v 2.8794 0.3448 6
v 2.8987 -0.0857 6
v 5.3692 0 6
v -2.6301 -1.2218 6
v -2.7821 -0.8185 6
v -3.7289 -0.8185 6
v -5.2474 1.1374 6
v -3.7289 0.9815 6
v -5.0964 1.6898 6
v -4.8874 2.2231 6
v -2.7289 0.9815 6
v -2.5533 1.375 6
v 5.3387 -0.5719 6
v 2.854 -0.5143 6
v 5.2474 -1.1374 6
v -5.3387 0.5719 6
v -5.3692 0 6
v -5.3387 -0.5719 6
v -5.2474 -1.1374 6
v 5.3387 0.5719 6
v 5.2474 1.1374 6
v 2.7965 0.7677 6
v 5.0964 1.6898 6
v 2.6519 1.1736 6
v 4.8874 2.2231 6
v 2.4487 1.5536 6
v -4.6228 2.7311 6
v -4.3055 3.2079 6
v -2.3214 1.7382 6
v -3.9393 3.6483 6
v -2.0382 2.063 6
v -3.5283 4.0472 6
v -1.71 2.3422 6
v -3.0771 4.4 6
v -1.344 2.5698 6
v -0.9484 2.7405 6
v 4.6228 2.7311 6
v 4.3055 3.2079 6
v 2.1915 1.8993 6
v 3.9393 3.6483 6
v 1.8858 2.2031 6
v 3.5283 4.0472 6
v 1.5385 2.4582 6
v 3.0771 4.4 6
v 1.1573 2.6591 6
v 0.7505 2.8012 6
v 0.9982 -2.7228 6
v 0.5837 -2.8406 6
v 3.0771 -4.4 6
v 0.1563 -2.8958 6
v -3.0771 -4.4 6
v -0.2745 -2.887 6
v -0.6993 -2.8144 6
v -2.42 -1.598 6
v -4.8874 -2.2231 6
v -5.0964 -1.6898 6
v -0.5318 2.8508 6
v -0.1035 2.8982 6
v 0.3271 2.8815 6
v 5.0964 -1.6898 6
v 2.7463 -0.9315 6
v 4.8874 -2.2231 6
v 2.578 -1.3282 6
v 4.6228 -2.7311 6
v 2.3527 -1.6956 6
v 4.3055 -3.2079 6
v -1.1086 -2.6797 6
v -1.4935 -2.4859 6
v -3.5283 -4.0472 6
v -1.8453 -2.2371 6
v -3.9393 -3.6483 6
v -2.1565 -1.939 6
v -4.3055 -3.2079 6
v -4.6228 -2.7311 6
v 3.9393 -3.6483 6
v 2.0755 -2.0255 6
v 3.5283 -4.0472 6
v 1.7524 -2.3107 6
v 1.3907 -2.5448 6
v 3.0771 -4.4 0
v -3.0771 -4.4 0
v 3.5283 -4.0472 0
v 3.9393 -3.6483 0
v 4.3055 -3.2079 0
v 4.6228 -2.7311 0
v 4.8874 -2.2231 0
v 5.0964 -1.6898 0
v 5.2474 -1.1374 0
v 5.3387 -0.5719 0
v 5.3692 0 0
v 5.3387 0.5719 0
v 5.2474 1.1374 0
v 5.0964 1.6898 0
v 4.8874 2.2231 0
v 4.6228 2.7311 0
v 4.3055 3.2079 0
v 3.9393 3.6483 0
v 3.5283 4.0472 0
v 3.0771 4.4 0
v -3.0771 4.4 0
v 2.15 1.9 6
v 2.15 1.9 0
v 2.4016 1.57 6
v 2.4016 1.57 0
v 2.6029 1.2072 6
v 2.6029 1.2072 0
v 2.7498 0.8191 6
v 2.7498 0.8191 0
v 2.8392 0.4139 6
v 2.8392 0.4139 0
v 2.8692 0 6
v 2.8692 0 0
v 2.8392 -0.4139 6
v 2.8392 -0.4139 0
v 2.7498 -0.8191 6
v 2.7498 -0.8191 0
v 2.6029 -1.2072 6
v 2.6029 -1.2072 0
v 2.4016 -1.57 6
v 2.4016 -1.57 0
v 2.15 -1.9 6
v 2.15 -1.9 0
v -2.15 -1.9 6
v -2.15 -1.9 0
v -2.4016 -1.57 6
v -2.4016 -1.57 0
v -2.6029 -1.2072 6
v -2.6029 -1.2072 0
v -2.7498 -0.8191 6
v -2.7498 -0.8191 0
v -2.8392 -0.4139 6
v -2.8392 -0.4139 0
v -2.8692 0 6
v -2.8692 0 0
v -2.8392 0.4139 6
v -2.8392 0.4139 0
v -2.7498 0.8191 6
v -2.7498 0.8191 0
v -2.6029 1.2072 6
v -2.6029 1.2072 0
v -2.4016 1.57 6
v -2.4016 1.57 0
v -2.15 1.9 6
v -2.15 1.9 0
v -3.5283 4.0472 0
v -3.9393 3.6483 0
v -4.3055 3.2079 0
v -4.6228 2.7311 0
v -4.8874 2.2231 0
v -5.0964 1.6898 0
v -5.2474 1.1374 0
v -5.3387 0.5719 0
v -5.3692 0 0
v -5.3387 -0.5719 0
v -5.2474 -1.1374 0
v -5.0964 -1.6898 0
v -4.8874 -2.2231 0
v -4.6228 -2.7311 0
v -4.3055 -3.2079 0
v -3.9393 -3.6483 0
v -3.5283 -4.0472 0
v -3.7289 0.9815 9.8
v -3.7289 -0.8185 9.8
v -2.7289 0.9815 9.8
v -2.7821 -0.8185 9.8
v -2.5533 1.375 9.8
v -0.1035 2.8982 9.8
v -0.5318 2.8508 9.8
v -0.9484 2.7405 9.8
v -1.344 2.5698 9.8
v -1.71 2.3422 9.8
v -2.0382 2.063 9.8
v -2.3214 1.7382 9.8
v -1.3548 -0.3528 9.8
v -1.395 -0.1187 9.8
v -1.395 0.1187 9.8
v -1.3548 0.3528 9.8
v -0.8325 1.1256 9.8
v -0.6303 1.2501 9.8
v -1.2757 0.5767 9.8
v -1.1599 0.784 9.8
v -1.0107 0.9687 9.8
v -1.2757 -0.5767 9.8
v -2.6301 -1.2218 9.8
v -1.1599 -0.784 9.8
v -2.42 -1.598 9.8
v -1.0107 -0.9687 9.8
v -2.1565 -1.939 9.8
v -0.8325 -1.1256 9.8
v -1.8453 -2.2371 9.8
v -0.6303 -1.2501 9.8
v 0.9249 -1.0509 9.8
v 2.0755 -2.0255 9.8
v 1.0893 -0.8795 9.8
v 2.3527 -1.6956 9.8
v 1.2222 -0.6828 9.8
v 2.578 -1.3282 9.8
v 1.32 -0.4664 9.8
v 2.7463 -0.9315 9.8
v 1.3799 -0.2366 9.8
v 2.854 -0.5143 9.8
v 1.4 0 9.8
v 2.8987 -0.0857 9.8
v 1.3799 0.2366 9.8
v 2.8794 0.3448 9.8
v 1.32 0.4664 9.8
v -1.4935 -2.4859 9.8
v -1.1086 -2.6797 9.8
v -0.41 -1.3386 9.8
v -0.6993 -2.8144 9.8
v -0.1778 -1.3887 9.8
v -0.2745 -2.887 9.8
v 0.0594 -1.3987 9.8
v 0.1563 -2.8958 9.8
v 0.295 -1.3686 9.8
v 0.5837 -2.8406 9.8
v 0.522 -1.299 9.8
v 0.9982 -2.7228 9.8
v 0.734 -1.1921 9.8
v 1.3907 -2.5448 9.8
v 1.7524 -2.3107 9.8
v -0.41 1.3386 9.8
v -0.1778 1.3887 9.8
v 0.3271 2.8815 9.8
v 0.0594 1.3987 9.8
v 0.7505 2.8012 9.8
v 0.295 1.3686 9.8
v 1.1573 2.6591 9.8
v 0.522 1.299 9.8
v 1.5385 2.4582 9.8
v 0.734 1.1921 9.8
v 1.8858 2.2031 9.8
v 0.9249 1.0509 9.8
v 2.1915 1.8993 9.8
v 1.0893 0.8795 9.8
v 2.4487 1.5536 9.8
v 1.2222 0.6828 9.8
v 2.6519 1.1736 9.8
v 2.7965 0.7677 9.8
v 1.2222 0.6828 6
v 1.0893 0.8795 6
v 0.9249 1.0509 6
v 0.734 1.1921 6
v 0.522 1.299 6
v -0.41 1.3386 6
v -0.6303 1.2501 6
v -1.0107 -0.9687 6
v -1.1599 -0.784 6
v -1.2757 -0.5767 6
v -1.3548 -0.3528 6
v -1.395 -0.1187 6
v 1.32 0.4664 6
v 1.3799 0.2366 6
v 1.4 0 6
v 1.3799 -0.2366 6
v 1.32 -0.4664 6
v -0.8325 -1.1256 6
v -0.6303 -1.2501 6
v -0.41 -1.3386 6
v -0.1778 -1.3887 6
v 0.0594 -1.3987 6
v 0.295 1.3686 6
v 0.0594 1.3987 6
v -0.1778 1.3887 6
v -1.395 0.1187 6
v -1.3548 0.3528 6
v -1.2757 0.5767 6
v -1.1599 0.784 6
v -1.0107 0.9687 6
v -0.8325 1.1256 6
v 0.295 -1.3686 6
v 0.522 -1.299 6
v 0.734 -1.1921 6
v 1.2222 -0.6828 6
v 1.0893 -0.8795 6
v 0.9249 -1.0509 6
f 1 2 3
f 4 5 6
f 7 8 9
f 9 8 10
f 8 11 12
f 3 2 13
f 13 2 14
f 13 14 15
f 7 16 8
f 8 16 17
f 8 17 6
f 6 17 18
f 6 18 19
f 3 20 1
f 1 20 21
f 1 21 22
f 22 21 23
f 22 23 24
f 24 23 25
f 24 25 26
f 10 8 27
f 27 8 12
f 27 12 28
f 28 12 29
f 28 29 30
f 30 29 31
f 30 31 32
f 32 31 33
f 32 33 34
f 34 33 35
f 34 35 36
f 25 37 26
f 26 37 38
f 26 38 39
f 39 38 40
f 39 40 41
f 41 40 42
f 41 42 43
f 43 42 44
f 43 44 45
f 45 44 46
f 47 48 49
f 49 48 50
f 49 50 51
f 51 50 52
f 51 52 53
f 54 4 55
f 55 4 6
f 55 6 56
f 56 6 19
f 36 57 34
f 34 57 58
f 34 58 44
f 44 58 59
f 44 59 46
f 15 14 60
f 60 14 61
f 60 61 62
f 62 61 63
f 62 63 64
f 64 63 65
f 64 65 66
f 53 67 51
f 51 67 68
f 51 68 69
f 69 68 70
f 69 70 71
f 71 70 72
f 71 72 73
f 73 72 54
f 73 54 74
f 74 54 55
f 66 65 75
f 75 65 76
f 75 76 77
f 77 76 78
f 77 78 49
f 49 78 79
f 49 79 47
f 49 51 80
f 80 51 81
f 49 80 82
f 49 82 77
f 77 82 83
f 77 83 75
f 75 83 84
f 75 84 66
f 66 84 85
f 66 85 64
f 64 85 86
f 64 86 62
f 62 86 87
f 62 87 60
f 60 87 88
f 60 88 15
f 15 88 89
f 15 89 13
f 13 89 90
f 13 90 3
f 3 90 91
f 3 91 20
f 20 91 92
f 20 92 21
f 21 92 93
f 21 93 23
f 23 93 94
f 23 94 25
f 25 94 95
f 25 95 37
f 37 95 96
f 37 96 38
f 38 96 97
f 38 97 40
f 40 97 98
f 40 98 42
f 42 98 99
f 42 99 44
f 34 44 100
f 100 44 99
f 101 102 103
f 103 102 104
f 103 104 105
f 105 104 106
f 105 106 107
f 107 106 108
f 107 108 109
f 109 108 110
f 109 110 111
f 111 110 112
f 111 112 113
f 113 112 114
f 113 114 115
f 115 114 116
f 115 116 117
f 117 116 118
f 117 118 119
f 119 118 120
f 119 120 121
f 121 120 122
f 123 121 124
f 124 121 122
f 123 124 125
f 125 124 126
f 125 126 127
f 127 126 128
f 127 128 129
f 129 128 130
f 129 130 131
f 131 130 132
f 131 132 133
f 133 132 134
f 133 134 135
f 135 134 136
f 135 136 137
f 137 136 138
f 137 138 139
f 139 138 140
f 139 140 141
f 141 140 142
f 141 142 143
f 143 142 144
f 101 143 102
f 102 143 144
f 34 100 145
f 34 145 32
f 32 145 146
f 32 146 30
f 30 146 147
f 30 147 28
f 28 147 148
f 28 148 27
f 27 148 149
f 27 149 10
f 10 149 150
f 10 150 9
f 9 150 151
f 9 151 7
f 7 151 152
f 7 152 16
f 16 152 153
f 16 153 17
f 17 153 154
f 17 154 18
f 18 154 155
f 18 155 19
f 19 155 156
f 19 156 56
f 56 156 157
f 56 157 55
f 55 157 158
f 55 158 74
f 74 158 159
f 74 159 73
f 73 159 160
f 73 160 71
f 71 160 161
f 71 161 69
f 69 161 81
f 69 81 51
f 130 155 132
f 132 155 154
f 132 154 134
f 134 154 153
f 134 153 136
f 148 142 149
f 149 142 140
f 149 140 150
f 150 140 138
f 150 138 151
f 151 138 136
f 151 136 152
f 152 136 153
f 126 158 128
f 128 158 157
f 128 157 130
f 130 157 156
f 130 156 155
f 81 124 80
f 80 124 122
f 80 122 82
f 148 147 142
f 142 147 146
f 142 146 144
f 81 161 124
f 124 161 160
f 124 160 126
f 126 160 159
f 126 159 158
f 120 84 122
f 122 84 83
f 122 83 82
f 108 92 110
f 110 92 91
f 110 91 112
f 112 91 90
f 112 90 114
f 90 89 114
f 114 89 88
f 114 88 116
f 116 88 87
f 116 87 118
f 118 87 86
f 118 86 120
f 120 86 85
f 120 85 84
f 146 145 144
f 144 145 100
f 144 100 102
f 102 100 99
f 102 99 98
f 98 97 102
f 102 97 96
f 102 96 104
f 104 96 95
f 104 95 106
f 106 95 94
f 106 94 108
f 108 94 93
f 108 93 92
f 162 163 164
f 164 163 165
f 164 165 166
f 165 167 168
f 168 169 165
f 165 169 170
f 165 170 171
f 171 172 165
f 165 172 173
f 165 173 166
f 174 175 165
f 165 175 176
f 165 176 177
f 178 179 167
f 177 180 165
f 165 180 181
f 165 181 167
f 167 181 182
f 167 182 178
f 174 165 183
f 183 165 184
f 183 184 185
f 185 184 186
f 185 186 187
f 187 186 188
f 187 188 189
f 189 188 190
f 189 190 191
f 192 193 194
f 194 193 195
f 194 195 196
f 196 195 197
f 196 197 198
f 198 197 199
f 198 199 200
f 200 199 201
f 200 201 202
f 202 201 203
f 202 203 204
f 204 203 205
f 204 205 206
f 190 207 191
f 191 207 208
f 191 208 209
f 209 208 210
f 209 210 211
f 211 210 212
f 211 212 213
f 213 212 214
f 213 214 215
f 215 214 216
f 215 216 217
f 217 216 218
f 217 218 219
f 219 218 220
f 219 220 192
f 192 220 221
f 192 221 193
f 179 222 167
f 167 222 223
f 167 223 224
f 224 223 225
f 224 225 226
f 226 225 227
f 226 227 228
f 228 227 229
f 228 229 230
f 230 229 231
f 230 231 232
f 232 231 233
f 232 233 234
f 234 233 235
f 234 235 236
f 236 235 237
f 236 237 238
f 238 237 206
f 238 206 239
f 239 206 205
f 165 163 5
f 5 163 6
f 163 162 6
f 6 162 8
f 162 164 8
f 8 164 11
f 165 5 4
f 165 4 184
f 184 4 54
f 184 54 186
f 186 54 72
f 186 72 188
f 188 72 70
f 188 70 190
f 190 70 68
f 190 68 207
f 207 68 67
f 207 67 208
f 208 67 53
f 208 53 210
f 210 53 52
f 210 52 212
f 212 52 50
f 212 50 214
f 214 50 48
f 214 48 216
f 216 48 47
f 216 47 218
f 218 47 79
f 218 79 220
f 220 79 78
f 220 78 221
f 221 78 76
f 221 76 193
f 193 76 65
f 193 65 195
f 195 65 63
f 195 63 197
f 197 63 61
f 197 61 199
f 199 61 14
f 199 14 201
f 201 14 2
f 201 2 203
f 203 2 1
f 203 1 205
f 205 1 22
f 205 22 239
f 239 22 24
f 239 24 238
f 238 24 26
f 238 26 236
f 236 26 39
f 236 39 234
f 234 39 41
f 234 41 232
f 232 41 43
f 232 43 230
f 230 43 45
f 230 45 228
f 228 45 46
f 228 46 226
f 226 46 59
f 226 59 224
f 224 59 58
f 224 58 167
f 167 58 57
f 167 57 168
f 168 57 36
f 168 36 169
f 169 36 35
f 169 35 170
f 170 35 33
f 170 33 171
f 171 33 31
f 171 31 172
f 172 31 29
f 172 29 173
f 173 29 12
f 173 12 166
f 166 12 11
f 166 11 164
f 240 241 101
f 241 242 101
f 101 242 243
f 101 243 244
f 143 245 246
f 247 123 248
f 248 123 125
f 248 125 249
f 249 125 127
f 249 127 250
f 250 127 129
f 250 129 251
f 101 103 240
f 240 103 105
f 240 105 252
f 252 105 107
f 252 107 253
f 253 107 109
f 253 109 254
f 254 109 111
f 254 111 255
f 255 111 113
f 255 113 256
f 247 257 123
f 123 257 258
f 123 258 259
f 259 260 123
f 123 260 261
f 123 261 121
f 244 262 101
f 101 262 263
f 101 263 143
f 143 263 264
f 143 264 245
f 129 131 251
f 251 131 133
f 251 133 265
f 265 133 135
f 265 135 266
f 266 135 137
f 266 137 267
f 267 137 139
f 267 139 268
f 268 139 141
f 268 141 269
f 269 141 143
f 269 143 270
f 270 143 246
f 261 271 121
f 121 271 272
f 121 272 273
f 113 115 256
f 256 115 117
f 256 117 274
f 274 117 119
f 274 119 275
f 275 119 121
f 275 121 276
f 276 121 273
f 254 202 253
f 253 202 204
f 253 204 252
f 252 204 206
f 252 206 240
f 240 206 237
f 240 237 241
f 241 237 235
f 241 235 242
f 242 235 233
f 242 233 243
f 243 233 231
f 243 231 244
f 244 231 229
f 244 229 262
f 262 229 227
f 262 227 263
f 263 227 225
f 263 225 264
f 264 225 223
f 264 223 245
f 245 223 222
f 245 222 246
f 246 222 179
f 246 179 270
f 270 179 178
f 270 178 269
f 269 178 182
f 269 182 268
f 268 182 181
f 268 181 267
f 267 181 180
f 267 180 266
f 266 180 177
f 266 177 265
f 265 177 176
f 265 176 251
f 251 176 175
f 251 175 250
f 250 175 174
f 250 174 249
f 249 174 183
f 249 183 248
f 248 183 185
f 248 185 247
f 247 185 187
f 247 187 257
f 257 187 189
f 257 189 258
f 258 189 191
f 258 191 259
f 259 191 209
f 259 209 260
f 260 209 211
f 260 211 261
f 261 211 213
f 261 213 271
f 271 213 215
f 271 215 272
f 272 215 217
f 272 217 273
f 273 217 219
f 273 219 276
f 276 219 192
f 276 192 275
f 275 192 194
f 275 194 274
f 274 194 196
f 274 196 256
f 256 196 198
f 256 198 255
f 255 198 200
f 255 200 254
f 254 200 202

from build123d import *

# Parameters (mm, degrees)
BOSS_EXTRUDE1_DEPTH = 6
BOSS_EXTRUDE2_DEPTH = 3.8
SKETCH3_R           = 1.4
CUT_EXTRUDE1_DEPTH  = 13.009524001


with BuildPart() as part:
    # Sketch1 → Boss-Extrude1 (new body)
    with BuildSketch(Plane(origin=(0, 0, 0), x_dir=(0, 1, 0), z_dir=(0, 0, 1))):
        with BuildLine():
            Line((-4.4, -3.077119877), (-4.4, 3.077119877))
            ThreePointArc((-4.4, 3.077119877), (0, 5.369233347), (4.4, 3.077119877))
            Line((4.4, 3.077119877), (4.4, -3.077119877))
            ThreePointArc((4.4, -3.077119877), (0, -5.369233347), (-4.4, -3.077119877))
        make_face()
        with BuildLine():
            ThreePointArc((-1.9, -2.15), (0, -2.869233347), (1.9, -2.15))
            Line((1.9, -2.15), (1.9, 2.15))
            ThreePointArc((1.9, 2.15), (0, 2.869233347), (-1.9, 2.15))
            Line((-1.9, 2.15), (-1.9, -2.15))
        make_face(mode=Mode.SUBTRACT)
    extrude(amount=BOSS_EXTRUDE1_DEPTH)

    # Sketch2 → Boss-Extrude2 (add)
    with BuildSketch(Plane.XY.offset(6)):
        with BuildLine():
            Line((-3.728872107, -0.818543418), (-3.728872107, 0.981456582))
            Line((-3.728872107, 0.981456582), (-2.728872107, 0.981456582))
            ThreePointArc((-2.728872107, 0.981456582), (2.898733684, -0.085691473), (-2.782083153, -0.818543418))
            Line((-2.782083153, -0.818543418), (-3.728872107, -0.818543418))
        make_face()
    extrude(amount=BOSS_EXTRUDE2_DEPTH)

    # Sketch3 → Cut-Extrude1 (cut, through all)
    with BuildSketch(Plane.XY.offset(9.8)):
        Circle(SKETCH3_R)
    extrude(amount=-CUT_EXTRUDE1_DEPTH, mode=Mode.SUBTRACT)


solid = part.part
